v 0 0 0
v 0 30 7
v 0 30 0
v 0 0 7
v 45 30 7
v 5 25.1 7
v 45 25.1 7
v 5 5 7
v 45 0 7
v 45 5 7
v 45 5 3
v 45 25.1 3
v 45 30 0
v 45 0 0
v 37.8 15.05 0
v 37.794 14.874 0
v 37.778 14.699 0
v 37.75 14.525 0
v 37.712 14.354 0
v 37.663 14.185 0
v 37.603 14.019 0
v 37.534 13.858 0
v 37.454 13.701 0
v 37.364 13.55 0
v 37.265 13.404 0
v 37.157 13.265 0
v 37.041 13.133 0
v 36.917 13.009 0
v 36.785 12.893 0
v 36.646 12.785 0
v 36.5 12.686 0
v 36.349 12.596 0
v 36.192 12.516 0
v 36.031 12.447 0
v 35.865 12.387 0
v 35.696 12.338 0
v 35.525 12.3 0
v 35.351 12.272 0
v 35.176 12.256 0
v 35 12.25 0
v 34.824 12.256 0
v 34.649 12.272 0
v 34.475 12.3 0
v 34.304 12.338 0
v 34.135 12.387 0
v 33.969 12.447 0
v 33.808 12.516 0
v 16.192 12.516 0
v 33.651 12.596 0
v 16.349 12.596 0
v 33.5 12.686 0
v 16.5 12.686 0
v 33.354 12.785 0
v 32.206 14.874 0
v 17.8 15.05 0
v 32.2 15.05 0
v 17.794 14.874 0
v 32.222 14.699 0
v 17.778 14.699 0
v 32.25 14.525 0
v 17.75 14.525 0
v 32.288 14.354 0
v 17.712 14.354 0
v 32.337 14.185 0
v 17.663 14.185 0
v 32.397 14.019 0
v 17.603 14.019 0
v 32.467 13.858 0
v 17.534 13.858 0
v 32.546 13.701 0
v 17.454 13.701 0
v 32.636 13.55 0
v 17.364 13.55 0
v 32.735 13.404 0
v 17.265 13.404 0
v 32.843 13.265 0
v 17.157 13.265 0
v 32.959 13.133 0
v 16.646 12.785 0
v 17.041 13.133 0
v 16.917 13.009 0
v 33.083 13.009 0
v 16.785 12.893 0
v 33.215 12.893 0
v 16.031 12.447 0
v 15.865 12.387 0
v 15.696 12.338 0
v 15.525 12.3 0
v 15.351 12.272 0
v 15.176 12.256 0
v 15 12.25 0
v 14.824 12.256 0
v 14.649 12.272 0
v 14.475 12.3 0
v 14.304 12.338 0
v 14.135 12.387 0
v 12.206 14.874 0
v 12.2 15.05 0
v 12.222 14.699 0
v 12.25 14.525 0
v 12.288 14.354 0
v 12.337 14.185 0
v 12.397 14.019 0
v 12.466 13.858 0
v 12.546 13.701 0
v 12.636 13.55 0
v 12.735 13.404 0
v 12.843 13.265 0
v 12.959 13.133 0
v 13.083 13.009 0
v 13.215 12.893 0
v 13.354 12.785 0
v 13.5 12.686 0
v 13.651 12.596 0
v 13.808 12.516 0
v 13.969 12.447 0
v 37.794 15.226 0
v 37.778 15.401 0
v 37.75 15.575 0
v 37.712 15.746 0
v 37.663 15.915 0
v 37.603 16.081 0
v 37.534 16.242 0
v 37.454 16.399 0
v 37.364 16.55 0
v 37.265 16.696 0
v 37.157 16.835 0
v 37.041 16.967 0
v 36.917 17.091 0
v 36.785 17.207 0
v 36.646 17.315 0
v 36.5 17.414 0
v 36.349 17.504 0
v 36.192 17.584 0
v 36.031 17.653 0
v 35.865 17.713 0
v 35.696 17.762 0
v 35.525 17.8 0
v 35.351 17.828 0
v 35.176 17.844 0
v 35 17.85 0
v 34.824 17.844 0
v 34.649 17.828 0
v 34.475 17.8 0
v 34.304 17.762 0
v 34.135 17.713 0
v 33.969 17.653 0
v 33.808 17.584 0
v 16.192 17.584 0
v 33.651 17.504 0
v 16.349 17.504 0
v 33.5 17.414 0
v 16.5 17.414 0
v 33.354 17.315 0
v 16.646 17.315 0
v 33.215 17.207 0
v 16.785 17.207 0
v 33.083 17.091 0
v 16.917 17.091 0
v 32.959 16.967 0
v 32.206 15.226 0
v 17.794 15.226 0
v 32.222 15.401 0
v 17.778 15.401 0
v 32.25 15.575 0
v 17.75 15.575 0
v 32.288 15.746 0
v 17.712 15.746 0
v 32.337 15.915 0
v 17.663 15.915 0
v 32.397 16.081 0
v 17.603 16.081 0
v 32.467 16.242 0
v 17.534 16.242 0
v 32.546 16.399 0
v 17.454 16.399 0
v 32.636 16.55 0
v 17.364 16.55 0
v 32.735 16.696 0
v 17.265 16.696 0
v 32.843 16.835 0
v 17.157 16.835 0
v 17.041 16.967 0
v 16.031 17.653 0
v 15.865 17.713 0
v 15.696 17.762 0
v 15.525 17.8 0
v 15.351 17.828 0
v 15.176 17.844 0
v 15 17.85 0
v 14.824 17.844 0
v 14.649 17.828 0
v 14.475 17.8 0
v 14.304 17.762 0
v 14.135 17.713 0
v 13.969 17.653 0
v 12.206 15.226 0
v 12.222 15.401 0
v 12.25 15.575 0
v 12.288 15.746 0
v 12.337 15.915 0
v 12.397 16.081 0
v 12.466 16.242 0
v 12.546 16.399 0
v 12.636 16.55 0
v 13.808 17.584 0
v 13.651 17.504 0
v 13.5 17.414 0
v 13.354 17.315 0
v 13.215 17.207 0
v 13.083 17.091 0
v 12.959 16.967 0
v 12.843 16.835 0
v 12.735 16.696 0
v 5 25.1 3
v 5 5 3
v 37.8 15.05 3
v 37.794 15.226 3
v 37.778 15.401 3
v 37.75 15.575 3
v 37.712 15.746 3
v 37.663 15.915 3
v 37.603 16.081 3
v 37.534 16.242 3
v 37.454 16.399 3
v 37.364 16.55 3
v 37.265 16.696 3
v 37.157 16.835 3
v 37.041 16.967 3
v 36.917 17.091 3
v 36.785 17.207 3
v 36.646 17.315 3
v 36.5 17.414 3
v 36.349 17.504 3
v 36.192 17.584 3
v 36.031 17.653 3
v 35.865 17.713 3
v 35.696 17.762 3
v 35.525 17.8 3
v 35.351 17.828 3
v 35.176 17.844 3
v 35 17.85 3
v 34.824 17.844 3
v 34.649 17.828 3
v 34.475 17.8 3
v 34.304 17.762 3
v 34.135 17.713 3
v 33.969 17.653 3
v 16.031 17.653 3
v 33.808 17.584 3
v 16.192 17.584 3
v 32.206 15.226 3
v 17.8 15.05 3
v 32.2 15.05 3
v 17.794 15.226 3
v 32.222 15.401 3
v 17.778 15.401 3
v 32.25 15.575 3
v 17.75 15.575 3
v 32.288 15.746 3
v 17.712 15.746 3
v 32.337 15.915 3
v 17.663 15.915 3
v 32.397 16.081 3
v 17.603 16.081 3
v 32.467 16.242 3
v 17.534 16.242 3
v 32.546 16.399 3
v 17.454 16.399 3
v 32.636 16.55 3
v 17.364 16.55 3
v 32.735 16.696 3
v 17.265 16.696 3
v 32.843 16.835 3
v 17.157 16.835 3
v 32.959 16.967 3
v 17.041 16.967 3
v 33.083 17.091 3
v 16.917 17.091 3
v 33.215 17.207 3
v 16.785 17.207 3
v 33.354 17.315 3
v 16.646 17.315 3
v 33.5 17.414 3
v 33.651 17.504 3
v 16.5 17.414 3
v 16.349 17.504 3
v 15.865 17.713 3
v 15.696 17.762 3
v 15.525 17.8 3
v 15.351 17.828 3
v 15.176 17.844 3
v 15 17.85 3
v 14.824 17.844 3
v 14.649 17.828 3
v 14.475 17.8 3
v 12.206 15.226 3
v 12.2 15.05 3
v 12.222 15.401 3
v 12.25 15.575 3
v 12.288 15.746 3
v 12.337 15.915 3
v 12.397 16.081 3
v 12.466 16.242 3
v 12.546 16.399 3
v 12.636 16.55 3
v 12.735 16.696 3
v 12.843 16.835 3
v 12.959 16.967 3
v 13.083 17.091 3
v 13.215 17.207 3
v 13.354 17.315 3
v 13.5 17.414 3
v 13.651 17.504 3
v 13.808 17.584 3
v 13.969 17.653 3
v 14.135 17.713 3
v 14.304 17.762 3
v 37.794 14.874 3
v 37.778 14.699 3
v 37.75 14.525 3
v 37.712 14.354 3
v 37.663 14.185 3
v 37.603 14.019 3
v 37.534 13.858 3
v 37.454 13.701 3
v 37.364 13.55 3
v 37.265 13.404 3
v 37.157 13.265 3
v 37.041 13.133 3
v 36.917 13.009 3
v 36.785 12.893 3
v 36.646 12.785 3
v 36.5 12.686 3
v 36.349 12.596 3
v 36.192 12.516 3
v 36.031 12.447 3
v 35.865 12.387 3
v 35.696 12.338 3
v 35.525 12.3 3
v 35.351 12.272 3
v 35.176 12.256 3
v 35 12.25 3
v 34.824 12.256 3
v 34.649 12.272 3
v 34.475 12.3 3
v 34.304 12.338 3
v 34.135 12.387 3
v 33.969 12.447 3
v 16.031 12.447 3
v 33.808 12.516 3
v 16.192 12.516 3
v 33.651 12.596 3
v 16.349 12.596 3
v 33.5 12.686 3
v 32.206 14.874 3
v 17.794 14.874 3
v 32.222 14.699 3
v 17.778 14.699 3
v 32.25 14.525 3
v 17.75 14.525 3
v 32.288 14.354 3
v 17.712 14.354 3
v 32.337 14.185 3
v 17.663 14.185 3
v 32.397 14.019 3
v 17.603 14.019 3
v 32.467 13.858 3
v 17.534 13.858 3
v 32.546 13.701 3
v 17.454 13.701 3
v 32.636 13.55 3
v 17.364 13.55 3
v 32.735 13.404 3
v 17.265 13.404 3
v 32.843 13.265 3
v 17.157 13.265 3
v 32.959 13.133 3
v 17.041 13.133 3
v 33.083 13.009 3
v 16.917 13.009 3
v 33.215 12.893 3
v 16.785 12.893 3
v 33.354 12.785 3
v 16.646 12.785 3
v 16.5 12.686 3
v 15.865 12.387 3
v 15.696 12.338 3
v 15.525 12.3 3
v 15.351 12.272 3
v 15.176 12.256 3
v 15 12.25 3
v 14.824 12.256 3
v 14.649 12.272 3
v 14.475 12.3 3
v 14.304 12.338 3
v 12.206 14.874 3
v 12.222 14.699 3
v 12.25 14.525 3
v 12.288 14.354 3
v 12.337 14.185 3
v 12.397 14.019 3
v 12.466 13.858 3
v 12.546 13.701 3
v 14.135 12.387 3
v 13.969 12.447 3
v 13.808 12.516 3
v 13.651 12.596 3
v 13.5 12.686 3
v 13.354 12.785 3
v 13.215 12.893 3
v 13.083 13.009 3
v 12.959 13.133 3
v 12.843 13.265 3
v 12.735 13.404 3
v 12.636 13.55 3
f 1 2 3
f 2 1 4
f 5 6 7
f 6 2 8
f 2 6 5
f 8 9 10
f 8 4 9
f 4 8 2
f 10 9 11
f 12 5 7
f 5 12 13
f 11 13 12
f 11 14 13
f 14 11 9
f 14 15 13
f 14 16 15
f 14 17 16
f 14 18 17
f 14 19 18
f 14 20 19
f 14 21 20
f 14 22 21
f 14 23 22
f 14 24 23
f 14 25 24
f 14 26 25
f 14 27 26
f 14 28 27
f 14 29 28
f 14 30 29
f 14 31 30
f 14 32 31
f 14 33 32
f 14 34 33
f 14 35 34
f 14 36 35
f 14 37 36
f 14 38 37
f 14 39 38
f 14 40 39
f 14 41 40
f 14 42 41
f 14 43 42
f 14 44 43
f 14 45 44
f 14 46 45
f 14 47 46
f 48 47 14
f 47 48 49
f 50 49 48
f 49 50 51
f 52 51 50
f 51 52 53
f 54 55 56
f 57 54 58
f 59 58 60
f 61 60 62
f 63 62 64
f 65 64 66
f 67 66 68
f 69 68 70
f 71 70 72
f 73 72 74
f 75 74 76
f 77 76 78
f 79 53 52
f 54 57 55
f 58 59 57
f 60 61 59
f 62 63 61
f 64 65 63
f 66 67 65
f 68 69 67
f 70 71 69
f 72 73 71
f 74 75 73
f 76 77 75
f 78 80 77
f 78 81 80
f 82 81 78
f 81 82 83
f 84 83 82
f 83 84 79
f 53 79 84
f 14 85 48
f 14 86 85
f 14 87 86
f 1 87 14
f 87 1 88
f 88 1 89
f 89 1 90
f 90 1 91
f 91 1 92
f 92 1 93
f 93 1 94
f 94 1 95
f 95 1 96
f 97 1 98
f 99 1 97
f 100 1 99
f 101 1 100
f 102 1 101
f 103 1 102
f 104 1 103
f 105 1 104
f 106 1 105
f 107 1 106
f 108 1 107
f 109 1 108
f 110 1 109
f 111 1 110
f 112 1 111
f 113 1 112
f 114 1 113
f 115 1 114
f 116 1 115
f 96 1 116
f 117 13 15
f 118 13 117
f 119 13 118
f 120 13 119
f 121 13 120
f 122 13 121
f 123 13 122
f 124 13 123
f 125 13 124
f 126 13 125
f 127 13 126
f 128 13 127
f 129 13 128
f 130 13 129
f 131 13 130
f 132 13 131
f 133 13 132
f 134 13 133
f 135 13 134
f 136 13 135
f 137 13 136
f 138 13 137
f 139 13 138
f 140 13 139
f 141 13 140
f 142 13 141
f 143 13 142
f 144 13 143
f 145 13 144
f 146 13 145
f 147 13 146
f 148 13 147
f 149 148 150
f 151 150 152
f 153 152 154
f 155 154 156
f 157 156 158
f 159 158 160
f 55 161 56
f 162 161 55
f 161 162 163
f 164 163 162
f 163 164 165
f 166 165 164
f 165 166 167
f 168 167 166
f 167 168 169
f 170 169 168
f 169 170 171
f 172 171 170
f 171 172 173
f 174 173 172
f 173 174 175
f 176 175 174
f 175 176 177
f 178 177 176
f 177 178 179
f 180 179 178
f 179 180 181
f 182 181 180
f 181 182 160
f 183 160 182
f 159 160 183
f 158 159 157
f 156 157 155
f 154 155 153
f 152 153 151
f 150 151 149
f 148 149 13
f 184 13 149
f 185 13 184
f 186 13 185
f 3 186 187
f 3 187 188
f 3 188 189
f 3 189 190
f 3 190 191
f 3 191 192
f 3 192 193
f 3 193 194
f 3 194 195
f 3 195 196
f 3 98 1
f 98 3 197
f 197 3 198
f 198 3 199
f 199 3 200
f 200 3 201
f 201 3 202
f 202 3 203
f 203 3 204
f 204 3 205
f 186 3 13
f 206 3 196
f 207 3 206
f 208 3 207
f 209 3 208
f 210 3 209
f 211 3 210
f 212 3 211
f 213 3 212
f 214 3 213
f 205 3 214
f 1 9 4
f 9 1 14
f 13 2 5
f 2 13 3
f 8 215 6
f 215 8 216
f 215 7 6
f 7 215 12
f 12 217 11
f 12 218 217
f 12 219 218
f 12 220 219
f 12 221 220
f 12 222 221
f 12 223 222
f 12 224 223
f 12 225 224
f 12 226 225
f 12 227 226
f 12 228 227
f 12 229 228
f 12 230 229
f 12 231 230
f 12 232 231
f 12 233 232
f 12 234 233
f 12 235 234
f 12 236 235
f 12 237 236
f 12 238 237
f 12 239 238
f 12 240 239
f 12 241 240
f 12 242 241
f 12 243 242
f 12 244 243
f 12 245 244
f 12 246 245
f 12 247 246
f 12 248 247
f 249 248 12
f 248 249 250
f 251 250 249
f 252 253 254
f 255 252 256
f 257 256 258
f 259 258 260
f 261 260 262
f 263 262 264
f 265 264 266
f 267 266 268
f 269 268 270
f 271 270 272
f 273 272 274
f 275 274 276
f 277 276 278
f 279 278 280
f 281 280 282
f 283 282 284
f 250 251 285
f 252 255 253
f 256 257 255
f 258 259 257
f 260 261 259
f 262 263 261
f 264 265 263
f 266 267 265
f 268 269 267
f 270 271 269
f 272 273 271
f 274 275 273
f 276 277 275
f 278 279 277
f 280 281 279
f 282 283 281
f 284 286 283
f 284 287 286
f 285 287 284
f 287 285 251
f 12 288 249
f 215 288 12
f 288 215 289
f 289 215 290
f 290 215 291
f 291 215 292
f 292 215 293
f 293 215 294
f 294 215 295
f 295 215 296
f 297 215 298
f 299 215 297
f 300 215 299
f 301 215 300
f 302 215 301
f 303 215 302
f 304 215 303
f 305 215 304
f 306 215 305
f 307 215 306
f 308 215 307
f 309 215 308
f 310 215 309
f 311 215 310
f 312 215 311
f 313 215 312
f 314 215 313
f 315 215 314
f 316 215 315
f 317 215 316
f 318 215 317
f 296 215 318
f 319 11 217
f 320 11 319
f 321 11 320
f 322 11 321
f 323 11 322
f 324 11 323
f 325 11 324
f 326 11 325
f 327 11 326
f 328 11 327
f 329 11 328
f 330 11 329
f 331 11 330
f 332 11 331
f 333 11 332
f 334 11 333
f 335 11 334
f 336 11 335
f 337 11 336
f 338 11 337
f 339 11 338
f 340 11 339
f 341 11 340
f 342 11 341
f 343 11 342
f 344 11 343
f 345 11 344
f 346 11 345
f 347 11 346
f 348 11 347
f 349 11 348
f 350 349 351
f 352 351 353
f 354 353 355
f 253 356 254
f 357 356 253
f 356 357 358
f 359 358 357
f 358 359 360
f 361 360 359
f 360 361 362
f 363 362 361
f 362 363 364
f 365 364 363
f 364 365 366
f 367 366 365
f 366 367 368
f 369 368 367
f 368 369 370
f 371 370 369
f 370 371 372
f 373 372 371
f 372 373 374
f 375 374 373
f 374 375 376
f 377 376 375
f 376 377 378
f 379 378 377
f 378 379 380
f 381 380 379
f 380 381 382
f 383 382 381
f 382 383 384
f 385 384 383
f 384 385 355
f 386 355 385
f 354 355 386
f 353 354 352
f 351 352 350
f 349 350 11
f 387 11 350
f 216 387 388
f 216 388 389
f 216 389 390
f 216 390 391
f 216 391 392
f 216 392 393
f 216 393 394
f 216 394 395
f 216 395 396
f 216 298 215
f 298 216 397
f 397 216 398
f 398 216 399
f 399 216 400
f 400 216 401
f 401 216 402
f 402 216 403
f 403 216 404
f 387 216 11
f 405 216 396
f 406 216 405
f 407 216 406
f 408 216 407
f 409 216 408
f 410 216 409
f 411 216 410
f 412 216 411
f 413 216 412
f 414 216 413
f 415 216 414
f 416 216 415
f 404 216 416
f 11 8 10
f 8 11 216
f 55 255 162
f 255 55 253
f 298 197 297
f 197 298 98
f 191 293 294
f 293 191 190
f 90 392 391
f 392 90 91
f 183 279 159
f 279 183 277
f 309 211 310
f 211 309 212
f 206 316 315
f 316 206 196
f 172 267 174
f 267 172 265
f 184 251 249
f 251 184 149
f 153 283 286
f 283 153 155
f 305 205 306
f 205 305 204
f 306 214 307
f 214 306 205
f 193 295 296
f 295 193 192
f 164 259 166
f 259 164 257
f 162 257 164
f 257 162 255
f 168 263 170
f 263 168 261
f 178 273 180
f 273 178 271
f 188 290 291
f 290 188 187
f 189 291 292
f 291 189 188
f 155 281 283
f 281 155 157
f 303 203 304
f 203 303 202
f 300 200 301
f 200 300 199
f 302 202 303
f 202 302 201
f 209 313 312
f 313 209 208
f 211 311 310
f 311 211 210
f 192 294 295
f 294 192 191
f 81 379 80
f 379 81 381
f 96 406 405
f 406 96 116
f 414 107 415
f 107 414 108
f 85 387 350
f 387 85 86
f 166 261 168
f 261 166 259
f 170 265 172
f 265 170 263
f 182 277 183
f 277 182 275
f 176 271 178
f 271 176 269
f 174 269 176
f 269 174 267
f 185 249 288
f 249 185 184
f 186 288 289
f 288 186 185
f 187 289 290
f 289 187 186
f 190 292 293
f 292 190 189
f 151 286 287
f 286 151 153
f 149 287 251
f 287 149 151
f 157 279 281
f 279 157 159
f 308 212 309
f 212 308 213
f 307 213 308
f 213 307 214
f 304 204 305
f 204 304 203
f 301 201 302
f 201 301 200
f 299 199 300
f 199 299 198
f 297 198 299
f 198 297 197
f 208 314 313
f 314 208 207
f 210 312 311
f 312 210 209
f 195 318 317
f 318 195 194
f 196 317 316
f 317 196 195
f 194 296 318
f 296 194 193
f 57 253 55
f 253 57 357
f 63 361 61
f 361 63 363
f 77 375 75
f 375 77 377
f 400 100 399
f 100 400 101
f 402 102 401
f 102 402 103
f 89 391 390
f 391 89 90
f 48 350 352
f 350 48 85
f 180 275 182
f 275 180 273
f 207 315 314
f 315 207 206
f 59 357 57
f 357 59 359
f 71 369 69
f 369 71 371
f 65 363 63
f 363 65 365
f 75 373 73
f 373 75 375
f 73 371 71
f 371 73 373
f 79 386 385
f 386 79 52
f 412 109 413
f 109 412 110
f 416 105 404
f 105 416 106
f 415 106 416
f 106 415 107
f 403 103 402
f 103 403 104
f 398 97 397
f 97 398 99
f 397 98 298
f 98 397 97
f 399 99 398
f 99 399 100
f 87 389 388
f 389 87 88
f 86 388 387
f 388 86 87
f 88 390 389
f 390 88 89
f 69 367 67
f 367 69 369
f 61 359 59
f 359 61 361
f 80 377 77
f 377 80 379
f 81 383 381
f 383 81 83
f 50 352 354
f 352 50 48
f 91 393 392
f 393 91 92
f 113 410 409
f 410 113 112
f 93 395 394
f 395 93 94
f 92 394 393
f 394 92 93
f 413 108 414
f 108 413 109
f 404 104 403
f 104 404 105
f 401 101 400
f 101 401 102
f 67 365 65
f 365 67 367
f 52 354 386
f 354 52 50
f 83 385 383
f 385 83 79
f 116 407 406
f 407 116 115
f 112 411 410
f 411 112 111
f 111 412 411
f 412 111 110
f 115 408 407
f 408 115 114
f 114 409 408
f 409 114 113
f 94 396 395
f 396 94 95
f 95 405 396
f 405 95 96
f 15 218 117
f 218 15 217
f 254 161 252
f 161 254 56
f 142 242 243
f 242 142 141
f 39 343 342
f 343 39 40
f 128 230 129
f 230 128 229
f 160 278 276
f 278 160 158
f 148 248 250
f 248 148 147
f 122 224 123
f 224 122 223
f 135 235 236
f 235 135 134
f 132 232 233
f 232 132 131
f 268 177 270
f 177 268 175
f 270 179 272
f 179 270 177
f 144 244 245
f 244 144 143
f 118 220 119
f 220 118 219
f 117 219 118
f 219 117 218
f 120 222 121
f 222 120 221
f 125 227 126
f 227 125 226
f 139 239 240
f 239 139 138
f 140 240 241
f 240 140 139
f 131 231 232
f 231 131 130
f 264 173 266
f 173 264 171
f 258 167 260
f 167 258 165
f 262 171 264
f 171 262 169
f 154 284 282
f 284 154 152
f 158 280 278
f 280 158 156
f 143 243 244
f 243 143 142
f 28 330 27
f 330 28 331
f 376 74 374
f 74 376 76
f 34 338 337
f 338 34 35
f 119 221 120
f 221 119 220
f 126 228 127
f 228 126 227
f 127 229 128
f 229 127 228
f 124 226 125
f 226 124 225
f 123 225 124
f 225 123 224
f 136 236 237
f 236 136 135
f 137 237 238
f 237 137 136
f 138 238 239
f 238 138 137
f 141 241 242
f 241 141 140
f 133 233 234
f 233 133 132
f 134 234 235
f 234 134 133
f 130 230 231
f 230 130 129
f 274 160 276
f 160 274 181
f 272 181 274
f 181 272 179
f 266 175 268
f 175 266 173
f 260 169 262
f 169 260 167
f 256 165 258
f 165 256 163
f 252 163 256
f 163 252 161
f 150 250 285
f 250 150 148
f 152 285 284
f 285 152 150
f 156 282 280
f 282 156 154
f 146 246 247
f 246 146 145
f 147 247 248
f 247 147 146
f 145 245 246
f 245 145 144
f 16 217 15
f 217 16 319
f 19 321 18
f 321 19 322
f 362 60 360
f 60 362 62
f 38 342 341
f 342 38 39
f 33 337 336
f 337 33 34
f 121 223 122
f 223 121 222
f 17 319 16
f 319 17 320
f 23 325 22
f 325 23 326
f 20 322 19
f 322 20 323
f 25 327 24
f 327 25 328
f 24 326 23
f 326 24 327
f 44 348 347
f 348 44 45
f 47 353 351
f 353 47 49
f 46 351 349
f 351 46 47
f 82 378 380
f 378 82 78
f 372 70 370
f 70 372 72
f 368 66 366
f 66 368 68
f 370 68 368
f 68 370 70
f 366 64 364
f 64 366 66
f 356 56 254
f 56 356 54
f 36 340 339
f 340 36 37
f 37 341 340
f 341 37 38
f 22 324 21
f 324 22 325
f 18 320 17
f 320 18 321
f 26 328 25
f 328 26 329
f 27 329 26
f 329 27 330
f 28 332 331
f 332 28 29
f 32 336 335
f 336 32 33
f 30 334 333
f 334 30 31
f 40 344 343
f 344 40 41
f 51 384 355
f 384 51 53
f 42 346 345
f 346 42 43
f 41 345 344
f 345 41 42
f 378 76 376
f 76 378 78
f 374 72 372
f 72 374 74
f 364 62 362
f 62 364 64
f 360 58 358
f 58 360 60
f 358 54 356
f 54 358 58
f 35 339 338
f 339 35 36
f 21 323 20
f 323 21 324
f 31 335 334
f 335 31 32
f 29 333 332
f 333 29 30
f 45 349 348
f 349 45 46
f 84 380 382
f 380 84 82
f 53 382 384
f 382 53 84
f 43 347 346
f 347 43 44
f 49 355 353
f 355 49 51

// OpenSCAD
//////////////////////////////////////////////////////////////////////////////
// drill guide 2020 for M-Max
//////////////////////////////////////////////////////////////////////////////
// created 4/6/2016
// last update 6/27/2016
//////////////////////////////////////////////////////////////////////////////
// 4/7/16 - added aversion to use on makerslide
// 4/13/16 - corrected distance between holes
// 6/24/16 - made so that offset determines length
//////////////////////////////////////////////////////////////////////////////
// A drill guide for 2020 to be able to eliminate the lower T-Max plastic brackets
// on the base section, hopefully drilling in the same plane from two sides
// won't weaken the 2020.
//////////////////////////////////////////////////////////////////////////////
// vars
/////////////////////////////////////////////////////////////////////////////
screw5 = 5.6;
width = 30;
thickness = 5;
w2020 = 20.1;
bottom = 10;
offset = 20;//80;
length = offset + 25;
////////////////////////////////////////////////////////////////////////////////

drillguide();
//drillguide2();
//test(); // test print for fitting 2020

/////////////////////////////////////////////////////////////////////////////////

module drillguide() { //2020 channel
	difference() {
		cube([length,width,thickness+2]);
		translate([5,5,3]) cube([length,w2020,thickness]);
		translate([bottom+5,w2020/2+5,-5]) cylinder(h=20,r=screw5/2,$fn=100);
		translate([offset+bottom+5,w2020/2+5,-5]) cylinder(h=20,r=screw5/2,$fn=100);
	}
}

/////////////////////////////////////////////////////////////////////////////////

module drillguide2() { // to use on makerslide
	difference() {
		cube([length,width-10,thickness+2]);
		translate([5,-1,3]) cube([length,width+2,thickness]);
		translate([bottom+5,w2020/2,-5]) cylinder(h=20,r=screw5/2,$fn=100);
		translate([offset+bottom+5,w2020/2,-5]) cylinder(h=20,r=screw5/2,$fn=100);
	}
}

//////////////////////////////////////////////////////////////////////////////////

module test() { // test print for fitting 2020
	difference() {
		drillguide();
		translate([20,-2,-2]) cube([length+5,width+5,thickness*2]);
	}
}

//////////////////// end of drillguide.scad //////////////////////////////////////
